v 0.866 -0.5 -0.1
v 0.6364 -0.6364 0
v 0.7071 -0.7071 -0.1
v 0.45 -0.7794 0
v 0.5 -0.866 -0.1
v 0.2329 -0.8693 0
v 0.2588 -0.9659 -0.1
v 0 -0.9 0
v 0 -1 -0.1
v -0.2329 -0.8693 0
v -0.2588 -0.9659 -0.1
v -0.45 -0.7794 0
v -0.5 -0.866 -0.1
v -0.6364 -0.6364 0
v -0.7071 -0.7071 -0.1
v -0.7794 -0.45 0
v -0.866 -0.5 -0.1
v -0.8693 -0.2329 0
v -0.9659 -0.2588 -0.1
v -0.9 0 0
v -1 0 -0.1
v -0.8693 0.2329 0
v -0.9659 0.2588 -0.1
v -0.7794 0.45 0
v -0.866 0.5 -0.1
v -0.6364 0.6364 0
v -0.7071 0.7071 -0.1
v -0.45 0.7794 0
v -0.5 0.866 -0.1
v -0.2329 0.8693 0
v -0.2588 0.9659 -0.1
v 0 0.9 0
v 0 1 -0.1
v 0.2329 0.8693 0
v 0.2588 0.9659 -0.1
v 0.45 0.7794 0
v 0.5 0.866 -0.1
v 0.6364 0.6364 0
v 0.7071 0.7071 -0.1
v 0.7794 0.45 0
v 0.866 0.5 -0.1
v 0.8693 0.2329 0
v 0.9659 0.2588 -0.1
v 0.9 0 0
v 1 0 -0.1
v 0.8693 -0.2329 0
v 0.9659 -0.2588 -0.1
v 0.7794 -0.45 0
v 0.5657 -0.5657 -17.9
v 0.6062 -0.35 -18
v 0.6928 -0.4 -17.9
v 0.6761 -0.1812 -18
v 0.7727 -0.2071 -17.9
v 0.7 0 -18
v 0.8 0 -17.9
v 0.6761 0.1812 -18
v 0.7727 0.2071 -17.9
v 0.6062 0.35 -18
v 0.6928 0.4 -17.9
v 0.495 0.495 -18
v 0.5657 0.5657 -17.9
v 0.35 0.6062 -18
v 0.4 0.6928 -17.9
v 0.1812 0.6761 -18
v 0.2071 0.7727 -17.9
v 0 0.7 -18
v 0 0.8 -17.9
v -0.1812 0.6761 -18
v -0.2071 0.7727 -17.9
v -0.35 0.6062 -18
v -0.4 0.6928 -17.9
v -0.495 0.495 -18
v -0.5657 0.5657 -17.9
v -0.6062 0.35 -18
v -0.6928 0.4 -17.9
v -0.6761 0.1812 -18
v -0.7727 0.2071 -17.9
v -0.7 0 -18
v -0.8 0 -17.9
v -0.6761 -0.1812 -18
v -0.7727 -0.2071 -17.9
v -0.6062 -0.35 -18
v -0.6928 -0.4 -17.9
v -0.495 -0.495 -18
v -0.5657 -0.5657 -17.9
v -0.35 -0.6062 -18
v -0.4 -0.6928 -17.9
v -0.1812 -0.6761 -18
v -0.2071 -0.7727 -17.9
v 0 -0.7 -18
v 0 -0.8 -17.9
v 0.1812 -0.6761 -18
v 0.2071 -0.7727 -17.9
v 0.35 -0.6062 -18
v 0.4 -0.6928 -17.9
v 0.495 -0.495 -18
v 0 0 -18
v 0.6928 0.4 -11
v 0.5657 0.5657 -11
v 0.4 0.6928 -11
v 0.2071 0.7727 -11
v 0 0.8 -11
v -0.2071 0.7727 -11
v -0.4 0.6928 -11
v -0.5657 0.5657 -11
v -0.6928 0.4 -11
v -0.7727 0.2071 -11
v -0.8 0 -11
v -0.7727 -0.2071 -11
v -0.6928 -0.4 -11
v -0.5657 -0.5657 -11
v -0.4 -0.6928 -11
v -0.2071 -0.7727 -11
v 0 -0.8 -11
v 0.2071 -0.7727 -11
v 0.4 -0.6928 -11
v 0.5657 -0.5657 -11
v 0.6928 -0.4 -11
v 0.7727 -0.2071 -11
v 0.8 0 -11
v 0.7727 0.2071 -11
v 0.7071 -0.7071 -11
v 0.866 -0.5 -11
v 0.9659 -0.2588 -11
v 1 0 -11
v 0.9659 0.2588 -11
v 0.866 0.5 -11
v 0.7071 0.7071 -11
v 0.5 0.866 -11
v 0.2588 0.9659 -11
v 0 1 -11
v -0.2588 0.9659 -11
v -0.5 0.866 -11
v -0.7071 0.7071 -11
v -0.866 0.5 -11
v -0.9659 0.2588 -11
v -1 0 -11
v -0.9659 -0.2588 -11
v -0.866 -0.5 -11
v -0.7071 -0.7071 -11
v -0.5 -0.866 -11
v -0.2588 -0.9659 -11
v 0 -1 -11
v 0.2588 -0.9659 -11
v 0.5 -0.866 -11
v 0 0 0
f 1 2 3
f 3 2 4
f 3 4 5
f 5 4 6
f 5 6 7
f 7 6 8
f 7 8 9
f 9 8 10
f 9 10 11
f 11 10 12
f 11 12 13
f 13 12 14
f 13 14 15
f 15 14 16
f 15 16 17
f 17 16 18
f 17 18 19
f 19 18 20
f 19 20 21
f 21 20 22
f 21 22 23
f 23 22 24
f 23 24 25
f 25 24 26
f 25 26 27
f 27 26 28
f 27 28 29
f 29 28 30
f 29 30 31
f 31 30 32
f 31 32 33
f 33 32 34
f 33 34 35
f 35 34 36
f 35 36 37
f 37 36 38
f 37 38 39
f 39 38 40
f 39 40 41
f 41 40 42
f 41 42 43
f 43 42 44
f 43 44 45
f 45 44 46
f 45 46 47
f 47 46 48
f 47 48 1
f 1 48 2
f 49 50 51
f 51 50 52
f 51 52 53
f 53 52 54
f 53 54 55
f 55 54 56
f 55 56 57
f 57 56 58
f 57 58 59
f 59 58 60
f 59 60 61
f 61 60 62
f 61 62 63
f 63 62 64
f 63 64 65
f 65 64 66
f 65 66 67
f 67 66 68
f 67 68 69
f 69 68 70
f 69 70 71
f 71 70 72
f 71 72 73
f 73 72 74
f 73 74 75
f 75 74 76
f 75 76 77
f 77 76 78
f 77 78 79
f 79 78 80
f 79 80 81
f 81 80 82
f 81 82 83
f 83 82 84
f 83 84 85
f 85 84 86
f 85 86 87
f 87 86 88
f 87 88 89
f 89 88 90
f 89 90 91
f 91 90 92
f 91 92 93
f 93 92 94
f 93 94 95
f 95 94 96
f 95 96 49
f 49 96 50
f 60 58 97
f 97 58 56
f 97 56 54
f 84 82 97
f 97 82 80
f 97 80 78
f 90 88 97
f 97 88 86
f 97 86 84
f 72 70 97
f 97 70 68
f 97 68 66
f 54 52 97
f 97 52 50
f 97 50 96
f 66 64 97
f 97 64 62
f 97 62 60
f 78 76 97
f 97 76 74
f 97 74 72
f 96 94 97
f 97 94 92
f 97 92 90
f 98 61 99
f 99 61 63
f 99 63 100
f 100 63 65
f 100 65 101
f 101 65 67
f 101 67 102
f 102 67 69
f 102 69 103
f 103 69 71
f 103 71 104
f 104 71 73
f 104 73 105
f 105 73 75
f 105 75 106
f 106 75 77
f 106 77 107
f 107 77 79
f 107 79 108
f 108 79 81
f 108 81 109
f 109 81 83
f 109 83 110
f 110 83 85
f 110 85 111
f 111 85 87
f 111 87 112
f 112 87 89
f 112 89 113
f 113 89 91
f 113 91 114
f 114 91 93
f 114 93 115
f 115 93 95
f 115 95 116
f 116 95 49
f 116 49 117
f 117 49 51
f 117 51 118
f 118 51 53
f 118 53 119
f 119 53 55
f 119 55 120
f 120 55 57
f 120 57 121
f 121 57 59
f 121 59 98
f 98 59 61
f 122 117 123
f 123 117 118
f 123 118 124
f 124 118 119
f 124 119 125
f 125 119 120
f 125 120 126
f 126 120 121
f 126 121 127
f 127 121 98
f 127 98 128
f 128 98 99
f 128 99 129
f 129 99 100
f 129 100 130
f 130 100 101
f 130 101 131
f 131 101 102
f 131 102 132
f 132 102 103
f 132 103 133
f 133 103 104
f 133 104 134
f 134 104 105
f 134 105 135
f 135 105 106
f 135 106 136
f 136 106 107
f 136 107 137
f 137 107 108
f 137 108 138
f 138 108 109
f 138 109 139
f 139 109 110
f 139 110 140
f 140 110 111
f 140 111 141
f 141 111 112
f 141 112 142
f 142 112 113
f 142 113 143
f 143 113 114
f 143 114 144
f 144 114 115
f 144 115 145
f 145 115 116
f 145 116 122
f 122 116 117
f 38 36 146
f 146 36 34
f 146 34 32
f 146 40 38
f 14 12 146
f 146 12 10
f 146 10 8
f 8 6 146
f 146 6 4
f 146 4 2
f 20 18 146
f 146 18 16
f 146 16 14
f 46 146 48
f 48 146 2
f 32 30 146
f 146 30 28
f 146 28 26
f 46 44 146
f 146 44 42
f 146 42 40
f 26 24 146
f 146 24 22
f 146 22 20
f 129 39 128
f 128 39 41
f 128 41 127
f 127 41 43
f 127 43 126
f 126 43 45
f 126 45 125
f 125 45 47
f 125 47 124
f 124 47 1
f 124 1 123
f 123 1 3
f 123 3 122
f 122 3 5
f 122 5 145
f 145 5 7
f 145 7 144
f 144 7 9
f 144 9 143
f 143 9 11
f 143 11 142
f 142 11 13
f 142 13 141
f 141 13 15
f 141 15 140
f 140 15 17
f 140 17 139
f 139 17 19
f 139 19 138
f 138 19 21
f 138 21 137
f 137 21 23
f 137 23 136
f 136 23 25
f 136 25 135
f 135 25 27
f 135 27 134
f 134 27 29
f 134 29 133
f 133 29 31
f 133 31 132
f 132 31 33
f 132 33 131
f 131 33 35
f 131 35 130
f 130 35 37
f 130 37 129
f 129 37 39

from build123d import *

# Parameters (mm, degrees)
SKETCH1_R           = 1
BOSS_EXTRUDE1_DEPTH = 18
SKETCH2_OUTSIDE_W   = 7.644
SKETCH2_OUTSIDE_H   = 7.644
SKETCH2_OUTSIDE_R   = 0.8
CUT_EXTRUDE1_DEPTH  = 7
CHAMFER1_SIZE       = 0.1
CHAMFER2_SIZE       = 0.1


with BuildPart() as part:
    # Sketch1 → Boss-Extrude1 (new body)
    with BuildSketch(Plane.XY):
        Circle(SKETCH1_R)
    extrude(amount=-BOSS_EXTRUDE1_DEPTH)

    # Sketch2 outside → Cut-Extrude1 (cut)
    with BuildSketch(Plane(origin=(0, 0, -18), x_dir=(-1, 0, 0), z_dir=(0, 0, -1))):
        Rectangle(SKETCH2_OUTSIDE_W, SKETCH2_OUTSIDE_H)
        Circle(SKETCH2_OUTSIDE_R, mode=Mode.SUBTRACT)
    extrude(amount=-CUT_EXTRUDE1_DEPTH, mode=Mode.SUBTRACT)

    # Chamfer1
    chamfer1_edges = [part.edges().sort_by_distance(p)[0] for p in [
        (0.8, 0, -18),
    ]]
    chamfer(chamfer1_edges, length=CHAMFER1_SIZE)

    # Chamfer2
    chamfer2_edges = [part.edges().sort_by_distance(p)[0] for p in [
        (-1, 0, 0),
    ]]
    chamfer(chamfer2_edges, length=CHAMFER2_SIZE)


solid = part.part
